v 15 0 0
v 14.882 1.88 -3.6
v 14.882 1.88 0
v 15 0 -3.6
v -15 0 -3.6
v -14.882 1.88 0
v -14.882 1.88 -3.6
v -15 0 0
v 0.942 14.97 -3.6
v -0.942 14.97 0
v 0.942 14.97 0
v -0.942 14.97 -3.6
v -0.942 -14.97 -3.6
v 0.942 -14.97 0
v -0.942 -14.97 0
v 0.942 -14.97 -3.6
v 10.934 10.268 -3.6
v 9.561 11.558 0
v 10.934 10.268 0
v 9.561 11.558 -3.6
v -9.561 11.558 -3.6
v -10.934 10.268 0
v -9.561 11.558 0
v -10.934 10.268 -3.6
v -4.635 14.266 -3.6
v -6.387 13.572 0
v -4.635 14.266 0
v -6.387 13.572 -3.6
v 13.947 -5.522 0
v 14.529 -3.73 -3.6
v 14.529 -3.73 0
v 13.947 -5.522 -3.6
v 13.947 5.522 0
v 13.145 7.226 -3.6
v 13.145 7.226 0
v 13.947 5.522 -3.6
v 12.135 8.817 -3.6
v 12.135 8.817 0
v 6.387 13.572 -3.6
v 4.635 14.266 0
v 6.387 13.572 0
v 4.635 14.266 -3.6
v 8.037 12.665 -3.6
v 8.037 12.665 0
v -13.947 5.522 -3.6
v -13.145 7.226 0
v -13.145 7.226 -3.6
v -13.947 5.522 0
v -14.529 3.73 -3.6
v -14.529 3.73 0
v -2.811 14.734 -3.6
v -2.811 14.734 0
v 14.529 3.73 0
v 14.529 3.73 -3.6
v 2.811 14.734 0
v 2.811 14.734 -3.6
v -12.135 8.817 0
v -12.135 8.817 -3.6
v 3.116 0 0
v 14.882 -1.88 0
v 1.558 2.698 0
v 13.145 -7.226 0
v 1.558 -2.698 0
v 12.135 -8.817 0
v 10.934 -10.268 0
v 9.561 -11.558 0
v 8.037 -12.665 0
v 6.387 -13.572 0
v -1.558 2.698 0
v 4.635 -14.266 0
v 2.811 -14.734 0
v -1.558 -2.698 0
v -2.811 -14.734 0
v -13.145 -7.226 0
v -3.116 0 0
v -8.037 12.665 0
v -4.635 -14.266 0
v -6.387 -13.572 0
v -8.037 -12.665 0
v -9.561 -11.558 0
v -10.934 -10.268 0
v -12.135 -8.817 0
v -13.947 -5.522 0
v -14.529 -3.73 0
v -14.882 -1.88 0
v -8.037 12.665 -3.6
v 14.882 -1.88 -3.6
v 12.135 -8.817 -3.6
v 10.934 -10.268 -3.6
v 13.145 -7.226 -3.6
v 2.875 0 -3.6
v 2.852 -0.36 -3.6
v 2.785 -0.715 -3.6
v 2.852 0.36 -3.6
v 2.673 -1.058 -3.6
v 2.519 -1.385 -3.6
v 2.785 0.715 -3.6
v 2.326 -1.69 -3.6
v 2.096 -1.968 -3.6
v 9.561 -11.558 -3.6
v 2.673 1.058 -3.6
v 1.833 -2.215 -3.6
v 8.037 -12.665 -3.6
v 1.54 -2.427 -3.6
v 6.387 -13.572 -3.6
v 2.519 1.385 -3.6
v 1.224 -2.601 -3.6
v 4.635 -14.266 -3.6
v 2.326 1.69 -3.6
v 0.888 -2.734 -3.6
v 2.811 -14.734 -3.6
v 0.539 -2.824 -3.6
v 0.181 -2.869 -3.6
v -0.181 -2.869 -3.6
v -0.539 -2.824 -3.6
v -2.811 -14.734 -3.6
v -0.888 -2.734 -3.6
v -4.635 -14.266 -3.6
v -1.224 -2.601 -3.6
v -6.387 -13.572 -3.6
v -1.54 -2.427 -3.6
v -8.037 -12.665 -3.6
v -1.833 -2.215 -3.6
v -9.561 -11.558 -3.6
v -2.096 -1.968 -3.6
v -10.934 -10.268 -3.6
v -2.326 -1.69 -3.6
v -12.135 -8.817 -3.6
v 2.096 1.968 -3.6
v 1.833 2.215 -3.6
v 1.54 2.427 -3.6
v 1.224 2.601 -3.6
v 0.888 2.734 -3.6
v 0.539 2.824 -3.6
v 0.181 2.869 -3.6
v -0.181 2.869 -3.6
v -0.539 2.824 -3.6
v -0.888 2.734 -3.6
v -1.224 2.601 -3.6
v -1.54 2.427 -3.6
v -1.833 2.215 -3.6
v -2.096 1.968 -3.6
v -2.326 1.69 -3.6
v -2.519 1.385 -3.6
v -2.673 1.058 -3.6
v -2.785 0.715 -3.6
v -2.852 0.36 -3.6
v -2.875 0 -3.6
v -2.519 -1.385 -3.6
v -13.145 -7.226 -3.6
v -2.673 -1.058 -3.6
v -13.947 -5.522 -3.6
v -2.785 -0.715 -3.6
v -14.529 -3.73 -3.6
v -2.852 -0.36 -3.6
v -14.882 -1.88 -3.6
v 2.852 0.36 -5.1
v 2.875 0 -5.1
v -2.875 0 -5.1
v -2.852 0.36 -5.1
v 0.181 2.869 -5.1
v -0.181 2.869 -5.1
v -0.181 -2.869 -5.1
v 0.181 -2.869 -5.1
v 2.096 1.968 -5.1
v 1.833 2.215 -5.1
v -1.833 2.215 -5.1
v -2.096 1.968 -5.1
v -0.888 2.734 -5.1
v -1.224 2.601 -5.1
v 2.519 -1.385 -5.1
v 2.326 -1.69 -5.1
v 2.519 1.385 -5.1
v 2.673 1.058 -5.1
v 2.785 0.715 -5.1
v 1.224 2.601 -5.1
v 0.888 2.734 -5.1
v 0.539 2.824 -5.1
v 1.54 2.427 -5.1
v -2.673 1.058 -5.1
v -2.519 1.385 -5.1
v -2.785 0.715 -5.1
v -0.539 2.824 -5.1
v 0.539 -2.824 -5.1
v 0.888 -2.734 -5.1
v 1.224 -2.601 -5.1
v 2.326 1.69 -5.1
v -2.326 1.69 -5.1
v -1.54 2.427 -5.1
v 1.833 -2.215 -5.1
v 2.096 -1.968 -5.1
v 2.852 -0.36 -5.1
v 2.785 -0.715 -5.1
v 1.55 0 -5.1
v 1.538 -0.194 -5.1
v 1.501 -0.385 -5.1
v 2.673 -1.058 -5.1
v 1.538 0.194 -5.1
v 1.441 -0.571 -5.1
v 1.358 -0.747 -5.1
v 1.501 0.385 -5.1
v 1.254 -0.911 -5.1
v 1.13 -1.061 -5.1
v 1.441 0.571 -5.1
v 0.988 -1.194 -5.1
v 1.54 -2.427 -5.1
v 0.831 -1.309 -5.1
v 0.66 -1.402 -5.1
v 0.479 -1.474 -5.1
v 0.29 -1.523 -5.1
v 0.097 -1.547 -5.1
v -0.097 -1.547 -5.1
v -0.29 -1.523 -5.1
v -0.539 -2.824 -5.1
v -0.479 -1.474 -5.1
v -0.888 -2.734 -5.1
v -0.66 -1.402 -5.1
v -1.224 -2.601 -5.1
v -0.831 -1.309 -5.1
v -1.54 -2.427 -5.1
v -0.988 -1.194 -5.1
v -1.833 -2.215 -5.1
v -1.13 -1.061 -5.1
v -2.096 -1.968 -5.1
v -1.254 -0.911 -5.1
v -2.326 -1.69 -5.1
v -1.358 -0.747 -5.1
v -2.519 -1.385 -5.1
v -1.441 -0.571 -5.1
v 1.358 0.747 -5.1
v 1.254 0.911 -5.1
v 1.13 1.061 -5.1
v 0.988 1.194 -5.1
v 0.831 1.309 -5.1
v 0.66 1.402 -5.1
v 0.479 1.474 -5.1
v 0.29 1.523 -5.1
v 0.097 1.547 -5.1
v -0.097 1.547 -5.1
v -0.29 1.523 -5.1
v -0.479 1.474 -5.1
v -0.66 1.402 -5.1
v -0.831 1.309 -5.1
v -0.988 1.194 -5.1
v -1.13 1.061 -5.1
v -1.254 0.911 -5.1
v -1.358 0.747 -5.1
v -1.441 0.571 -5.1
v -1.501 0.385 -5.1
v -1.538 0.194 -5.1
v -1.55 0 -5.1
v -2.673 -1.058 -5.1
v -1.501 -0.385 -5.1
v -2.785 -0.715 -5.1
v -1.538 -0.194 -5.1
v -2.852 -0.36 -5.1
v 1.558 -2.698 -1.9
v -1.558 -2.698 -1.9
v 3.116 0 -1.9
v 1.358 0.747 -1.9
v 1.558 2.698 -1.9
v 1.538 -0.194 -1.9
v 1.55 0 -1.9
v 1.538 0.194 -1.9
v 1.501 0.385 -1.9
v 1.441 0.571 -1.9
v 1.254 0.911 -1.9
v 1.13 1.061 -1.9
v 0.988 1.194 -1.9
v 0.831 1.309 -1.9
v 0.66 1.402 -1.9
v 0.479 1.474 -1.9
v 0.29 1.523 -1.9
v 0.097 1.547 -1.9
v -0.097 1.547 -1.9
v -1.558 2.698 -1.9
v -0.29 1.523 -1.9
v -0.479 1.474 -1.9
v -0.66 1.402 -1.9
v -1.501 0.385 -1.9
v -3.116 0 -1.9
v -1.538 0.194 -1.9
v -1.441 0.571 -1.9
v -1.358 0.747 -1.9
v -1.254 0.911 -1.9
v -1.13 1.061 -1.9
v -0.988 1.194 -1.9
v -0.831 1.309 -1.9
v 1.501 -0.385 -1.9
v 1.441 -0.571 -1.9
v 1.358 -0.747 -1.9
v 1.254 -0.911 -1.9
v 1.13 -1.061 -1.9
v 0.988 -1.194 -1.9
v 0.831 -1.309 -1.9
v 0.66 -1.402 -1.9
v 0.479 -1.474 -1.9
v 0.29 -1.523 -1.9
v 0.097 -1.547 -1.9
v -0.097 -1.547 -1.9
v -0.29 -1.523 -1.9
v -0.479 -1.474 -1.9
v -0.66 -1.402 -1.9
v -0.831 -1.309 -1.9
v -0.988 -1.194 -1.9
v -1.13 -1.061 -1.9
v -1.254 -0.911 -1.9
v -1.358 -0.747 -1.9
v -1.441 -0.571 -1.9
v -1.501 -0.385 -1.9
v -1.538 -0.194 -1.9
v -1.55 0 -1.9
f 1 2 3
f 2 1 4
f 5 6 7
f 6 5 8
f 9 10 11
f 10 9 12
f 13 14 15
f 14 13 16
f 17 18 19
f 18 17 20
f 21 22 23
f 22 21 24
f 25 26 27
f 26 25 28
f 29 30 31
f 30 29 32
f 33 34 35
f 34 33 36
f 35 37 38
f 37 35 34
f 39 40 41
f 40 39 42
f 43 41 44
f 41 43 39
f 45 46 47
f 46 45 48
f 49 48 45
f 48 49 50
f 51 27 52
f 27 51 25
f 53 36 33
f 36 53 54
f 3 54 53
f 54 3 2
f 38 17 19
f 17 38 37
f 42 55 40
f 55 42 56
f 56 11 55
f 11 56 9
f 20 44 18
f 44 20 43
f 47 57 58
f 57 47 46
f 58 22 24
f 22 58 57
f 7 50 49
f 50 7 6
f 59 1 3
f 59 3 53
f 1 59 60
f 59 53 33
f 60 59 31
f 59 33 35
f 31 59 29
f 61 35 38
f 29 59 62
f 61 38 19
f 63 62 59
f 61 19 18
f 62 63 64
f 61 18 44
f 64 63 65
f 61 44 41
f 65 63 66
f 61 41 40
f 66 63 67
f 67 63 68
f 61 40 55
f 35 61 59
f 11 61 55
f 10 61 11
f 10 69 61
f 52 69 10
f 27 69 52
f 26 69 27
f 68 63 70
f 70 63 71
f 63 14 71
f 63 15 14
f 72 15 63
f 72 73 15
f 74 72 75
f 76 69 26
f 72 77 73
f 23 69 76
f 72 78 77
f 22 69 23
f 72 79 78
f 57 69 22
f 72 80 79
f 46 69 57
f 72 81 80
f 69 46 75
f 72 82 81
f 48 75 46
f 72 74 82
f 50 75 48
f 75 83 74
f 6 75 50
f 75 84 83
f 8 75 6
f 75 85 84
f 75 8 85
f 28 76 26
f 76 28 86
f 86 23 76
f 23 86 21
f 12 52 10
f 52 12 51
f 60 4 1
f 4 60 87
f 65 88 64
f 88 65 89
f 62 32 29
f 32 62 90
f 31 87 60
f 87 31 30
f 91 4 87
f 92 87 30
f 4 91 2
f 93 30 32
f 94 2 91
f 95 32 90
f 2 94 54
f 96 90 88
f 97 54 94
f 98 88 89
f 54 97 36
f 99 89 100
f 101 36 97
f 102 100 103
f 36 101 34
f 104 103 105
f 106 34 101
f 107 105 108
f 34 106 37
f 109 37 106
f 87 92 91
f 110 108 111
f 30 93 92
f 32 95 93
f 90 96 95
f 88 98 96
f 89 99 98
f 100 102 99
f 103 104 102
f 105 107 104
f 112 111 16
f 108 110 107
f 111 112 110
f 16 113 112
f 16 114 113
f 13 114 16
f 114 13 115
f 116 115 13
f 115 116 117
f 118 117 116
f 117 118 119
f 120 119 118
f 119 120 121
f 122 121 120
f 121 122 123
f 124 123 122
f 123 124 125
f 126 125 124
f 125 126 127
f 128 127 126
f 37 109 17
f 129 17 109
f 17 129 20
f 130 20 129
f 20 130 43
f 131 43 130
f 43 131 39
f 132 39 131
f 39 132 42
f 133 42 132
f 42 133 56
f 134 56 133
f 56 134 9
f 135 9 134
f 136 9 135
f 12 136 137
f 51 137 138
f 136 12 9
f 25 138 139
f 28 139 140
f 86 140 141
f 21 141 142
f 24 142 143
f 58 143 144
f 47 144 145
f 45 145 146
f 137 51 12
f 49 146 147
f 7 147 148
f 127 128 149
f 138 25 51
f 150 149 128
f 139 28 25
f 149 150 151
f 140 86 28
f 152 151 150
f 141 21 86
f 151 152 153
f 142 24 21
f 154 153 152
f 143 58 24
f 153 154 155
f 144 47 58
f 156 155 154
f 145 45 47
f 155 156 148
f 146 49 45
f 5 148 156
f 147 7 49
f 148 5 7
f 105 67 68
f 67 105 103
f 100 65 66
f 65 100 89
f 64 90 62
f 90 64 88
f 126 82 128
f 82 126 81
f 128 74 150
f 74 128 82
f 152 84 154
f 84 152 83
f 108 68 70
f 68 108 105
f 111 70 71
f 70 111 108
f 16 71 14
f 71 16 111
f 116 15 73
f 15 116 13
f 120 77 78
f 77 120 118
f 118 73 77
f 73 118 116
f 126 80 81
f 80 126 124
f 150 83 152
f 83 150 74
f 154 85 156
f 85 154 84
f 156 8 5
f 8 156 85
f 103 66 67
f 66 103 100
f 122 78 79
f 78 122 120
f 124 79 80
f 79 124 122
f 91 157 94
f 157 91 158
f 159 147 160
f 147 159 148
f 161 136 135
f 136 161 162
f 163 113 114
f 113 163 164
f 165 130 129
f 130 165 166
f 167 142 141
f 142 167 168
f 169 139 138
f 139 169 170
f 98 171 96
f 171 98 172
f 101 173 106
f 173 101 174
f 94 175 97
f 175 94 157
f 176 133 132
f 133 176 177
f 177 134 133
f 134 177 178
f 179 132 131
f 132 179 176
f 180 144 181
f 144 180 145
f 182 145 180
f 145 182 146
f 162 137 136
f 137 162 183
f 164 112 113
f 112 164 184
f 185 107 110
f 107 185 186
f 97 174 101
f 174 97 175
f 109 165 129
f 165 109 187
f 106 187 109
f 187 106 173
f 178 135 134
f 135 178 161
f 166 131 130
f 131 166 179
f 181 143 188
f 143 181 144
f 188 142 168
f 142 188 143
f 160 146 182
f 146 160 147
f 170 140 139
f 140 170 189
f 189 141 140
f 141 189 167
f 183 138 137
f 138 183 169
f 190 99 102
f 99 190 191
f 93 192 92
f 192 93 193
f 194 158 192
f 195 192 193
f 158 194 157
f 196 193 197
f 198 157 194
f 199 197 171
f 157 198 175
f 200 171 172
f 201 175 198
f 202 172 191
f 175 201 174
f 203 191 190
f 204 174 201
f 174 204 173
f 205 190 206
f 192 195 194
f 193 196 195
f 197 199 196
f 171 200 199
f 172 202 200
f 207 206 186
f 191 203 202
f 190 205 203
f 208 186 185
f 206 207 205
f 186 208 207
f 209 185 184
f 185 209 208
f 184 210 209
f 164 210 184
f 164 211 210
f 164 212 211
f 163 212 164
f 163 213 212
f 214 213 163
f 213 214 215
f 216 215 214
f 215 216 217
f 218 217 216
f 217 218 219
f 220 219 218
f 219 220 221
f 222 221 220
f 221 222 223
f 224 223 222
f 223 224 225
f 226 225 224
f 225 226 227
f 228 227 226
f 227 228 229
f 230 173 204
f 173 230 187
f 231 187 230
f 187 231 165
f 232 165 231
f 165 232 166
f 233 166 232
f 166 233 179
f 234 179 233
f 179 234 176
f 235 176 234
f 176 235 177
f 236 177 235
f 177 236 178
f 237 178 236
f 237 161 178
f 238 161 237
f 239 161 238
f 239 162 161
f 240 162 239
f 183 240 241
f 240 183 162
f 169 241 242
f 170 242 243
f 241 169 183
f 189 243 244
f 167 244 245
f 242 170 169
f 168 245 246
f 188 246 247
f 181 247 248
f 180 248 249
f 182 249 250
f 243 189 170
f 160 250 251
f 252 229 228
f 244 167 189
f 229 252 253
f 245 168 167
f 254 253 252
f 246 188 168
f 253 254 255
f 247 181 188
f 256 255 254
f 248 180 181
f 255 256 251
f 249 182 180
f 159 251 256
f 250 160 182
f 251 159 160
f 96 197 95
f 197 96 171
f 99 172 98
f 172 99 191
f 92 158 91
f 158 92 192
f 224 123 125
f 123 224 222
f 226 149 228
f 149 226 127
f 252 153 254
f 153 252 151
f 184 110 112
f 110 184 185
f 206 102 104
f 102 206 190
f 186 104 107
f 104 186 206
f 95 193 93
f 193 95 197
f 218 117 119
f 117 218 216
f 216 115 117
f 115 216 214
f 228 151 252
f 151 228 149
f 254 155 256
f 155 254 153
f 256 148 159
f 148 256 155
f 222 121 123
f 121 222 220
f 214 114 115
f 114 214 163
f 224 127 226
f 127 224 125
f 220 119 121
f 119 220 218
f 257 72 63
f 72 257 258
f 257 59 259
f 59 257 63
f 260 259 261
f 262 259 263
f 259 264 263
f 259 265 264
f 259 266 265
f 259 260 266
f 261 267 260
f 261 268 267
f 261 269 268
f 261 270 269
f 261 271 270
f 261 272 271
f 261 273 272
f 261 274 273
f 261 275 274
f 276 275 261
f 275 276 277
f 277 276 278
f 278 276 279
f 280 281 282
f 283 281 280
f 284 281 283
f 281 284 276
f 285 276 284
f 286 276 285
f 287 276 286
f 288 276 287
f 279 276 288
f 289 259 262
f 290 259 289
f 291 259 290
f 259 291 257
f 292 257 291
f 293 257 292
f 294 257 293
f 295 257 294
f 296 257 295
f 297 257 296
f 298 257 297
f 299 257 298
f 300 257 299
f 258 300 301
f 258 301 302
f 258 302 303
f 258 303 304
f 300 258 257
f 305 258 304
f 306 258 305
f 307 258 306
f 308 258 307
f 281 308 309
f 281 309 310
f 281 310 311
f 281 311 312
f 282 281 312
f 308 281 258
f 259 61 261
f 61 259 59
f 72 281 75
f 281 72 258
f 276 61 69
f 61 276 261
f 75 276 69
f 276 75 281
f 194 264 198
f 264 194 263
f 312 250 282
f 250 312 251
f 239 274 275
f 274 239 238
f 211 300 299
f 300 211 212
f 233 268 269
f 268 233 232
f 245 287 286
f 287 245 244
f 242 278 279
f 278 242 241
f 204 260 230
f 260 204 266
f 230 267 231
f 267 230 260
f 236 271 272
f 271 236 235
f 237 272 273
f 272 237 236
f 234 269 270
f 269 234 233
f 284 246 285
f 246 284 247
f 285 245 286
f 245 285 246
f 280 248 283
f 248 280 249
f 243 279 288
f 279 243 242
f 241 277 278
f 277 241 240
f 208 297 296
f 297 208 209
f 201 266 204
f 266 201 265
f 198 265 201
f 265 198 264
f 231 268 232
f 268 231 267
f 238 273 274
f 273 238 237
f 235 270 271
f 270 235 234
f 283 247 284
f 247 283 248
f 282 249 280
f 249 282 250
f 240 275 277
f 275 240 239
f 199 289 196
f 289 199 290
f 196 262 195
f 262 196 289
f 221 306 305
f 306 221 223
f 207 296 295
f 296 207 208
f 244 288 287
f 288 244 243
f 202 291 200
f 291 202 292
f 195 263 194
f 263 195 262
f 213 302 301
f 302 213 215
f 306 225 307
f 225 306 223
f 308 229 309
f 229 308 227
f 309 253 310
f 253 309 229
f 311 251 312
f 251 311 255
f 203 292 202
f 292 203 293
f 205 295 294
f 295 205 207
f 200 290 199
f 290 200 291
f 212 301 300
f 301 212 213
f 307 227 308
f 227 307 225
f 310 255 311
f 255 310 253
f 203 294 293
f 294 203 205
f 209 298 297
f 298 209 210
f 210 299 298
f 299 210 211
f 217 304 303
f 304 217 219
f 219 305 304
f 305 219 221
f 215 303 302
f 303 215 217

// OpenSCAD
$fn = 50;


difference() {
	union() {
		translate(v = [0, 0, -3.6000000000]) {
			cylinder(h = 3.6000000000, r = 15.0000000000);
		}
		#translate(v = [0, 0, -5.1000000000]) {
			cylinder(h = 5.1000000000, r = 2.8750000000);
		}
	}
	union() {
		translate(v = [0, 0, 0]) {
			rotate(a = [0, 0, 0]) {
				difference() {
					union() {
						translate(v = [0, 0, -1.9000000000]) {
							linear_extrude(height = 1.9000000000) {
								polygon(points = [[3.1158000000, 0.0000000000], [1.5579000000, 2.6983619531], [-1.5579000000, 2.6983619531], [-3.1158000000, 0.0000000000], [-1.5579000000, -2.6983619531], [1.5579000000, -2.6983619531]]);
							}
						}
					}
					union();
				}
			}
		}
		#translate(v = [0, 0, -100.0000000000]) {
			cylinder(h = 200, r = 1.5500000000);
		}
	}
}
